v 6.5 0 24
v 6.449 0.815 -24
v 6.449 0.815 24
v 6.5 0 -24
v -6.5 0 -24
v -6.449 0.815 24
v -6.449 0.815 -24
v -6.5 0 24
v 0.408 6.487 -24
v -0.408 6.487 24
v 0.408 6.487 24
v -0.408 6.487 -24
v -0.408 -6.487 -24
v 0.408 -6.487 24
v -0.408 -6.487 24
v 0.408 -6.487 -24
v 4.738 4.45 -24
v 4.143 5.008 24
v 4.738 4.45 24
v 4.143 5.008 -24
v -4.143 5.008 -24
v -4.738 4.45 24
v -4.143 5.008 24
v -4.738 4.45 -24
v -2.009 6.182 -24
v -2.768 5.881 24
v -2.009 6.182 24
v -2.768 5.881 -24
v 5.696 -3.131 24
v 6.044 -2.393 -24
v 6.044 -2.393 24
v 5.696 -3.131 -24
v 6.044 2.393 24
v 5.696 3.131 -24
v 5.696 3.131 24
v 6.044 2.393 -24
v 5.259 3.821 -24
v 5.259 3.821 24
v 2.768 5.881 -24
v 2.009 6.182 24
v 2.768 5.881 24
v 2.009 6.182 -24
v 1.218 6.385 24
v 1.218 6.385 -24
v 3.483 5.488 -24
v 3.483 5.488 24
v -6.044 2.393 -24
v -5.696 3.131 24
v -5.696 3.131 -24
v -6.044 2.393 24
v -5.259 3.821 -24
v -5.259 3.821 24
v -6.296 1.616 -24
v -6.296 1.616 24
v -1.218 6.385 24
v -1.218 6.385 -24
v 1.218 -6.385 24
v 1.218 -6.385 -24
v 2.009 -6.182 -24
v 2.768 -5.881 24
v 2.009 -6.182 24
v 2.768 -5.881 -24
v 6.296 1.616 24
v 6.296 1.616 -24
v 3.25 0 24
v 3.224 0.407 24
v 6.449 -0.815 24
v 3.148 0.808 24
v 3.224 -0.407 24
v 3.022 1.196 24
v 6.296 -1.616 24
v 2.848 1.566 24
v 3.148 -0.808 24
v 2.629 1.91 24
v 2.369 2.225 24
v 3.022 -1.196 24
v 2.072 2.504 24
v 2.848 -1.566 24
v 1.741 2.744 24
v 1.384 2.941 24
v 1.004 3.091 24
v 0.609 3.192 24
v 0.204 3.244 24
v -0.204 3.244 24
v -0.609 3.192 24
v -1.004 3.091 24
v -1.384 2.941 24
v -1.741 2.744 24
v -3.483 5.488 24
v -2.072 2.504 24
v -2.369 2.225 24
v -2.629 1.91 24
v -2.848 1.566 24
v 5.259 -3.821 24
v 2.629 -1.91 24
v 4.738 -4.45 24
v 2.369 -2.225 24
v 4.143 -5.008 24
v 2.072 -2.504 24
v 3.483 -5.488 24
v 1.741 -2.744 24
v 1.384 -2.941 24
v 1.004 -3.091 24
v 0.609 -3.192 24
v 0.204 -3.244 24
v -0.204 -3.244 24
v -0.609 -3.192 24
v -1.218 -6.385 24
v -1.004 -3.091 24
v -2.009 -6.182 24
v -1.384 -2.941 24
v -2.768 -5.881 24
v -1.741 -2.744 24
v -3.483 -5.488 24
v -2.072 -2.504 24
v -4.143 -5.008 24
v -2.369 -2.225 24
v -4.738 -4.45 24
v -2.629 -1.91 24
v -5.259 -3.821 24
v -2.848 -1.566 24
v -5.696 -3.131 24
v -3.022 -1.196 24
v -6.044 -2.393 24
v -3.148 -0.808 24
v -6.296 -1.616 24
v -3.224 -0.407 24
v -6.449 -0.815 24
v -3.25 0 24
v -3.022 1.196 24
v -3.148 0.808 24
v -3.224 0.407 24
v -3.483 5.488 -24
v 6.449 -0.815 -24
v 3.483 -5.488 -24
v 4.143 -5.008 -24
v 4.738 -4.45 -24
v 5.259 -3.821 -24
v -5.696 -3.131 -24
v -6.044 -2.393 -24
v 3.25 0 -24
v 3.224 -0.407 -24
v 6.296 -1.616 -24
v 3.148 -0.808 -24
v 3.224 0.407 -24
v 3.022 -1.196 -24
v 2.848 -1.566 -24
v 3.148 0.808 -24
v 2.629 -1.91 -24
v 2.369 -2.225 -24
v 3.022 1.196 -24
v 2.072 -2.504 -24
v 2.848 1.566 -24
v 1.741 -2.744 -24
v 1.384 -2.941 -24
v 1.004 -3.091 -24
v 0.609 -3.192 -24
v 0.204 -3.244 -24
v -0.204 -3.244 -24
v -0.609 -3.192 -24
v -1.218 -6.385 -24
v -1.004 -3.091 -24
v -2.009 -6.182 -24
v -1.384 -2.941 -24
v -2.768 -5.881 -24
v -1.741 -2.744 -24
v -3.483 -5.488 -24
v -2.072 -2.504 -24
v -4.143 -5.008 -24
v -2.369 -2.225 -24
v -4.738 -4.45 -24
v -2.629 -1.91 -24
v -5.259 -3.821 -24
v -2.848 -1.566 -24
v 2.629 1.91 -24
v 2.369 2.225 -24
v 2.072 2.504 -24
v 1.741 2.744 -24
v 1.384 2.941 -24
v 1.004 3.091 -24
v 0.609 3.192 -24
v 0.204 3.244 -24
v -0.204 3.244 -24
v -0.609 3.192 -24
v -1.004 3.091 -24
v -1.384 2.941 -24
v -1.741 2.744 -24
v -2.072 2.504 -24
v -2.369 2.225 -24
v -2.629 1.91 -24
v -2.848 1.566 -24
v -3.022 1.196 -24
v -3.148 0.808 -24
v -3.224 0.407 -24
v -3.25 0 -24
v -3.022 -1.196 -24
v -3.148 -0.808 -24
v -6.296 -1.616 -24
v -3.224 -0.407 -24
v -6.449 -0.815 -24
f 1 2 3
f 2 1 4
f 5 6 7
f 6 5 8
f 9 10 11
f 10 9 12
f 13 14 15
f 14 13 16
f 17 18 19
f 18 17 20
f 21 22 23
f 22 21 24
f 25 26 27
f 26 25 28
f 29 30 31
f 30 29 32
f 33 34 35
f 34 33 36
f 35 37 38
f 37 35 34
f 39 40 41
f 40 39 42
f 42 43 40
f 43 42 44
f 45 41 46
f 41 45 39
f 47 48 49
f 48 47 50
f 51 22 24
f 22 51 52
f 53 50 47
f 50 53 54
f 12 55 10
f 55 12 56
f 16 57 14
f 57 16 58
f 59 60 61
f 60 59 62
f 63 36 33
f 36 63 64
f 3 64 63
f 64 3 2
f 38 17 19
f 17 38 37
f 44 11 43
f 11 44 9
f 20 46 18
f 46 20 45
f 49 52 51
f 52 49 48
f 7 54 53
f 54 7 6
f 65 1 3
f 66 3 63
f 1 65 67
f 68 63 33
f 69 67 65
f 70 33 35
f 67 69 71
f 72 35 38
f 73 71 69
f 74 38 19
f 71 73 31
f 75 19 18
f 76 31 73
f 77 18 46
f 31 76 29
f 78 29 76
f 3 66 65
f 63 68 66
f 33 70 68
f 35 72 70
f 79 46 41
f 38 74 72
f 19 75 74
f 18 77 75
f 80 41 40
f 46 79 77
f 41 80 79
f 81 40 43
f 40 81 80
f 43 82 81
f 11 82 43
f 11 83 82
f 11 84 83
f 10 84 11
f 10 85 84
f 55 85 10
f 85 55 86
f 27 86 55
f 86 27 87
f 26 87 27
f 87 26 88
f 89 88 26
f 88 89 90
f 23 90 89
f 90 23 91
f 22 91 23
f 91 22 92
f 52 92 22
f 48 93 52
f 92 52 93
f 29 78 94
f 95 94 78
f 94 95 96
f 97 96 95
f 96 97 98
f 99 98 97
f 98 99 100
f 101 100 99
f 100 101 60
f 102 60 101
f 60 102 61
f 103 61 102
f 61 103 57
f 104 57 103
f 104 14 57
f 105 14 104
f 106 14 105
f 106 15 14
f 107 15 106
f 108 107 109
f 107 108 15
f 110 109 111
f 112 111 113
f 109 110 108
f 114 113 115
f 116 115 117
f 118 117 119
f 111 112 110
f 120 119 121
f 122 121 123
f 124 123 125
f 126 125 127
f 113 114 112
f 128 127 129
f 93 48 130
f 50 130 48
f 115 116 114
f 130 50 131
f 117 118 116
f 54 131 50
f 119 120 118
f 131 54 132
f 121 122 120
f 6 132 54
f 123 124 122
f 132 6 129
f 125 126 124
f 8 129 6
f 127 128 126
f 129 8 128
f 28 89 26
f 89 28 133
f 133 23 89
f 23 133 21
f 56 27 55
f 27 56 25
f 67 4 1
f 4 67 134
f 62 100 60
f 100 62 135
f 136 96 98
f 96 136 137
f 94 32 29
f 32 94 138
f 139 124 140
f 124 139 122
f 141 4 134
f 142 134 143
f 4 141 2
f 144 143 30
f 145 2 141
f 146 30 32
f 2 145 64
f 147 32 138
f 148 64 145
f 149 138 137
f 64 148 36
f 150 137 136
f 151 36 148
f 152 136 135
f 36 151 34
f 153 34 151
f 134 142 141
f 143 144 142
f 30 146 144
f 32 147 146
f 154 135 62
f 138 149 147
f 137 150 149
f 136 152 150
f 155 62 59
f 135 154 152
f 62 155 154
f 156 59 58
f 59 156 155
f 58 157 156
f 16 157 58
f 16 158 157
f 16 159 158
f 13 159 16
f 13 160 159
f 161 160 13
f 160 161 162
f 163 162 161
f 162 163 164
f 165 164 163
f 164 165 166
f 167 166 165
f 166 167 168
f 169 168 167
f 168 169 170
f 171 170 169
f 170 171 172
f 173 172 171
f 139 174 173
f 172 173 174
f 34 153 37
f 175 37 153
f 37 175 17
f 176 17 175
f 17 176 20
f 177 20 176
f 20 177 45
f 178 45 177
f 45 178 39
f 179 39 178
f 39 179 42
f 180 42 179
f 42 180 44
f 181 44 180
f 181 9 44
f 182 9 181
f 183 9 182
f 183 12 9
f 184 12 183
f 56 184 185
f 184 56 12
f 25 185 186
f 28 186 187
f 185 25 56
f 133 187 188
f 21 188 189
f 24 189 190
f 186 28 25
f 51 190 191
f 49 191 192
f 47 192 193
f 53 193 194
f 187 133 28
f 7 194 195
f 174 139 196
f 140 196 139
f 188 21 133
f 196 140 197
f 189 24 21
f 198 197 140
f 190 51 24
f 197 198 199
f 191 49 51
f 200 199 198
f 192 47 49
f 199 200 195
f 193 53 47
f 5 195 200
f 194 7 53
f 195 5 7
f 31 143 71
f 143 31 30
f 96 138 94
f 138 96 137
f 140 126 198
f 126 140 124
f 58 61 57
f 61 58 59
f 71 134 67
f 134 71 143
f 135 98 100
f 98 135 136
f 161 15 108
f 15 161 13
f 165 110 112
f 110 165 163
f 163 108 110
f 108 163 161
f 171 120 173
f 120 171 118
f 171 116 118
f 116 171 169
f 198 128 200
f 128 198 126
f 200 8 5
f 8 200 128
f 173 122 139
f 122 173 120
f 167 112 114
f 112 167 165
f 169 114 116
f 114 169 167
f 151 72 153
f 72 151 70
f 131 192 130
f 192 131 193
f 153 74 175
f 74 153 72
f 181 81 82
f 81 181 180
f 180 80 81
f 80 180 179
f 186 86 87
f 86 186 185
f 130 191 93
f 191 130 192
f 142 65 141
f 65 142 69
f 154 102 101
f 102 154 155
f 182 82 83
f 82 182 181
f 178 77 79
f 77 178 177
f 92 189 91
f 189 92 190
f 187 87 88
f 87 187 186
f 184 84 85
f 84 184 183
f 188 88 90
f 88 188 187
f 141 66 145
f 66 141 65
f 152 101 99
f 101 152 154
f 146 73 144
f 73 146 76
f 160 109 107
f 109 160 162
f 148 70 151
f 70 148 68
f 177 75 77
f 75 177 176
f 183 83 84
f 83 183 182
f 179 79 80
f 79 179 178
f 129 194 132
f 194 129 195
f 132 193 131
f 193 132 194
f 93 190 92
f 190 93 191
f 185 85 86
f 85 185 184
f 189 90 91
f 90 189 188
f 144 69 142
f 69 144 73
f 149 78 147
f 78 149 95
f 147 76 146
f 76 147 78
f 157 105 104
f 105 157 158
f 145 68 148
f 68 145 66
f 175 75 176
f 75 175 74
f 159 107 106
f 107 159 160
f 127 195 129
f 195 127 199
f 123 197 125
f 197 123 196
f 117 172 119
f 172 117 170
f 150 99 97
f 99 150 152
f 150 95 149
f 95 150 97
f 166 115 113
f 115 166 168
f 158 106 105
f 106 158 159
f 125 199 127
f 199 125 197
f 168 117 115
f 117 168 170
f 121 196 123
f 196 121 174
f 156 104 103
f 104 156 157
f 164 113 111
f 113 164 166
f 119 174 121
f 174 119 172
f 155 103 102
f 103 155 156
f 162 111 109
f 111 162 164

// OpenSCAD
$fn = 50;


difference() {
	union() {
		translate(v = [0, 0, -24.0000000000]) {
			cylinder(h = 48, r = 6.5000000000);
		}
	}
	union() {
		translate(v = [0, 0, -100.0000000000]) {
			cylinder(h = 200, r = 3.2500000000);
		}
	}
}
